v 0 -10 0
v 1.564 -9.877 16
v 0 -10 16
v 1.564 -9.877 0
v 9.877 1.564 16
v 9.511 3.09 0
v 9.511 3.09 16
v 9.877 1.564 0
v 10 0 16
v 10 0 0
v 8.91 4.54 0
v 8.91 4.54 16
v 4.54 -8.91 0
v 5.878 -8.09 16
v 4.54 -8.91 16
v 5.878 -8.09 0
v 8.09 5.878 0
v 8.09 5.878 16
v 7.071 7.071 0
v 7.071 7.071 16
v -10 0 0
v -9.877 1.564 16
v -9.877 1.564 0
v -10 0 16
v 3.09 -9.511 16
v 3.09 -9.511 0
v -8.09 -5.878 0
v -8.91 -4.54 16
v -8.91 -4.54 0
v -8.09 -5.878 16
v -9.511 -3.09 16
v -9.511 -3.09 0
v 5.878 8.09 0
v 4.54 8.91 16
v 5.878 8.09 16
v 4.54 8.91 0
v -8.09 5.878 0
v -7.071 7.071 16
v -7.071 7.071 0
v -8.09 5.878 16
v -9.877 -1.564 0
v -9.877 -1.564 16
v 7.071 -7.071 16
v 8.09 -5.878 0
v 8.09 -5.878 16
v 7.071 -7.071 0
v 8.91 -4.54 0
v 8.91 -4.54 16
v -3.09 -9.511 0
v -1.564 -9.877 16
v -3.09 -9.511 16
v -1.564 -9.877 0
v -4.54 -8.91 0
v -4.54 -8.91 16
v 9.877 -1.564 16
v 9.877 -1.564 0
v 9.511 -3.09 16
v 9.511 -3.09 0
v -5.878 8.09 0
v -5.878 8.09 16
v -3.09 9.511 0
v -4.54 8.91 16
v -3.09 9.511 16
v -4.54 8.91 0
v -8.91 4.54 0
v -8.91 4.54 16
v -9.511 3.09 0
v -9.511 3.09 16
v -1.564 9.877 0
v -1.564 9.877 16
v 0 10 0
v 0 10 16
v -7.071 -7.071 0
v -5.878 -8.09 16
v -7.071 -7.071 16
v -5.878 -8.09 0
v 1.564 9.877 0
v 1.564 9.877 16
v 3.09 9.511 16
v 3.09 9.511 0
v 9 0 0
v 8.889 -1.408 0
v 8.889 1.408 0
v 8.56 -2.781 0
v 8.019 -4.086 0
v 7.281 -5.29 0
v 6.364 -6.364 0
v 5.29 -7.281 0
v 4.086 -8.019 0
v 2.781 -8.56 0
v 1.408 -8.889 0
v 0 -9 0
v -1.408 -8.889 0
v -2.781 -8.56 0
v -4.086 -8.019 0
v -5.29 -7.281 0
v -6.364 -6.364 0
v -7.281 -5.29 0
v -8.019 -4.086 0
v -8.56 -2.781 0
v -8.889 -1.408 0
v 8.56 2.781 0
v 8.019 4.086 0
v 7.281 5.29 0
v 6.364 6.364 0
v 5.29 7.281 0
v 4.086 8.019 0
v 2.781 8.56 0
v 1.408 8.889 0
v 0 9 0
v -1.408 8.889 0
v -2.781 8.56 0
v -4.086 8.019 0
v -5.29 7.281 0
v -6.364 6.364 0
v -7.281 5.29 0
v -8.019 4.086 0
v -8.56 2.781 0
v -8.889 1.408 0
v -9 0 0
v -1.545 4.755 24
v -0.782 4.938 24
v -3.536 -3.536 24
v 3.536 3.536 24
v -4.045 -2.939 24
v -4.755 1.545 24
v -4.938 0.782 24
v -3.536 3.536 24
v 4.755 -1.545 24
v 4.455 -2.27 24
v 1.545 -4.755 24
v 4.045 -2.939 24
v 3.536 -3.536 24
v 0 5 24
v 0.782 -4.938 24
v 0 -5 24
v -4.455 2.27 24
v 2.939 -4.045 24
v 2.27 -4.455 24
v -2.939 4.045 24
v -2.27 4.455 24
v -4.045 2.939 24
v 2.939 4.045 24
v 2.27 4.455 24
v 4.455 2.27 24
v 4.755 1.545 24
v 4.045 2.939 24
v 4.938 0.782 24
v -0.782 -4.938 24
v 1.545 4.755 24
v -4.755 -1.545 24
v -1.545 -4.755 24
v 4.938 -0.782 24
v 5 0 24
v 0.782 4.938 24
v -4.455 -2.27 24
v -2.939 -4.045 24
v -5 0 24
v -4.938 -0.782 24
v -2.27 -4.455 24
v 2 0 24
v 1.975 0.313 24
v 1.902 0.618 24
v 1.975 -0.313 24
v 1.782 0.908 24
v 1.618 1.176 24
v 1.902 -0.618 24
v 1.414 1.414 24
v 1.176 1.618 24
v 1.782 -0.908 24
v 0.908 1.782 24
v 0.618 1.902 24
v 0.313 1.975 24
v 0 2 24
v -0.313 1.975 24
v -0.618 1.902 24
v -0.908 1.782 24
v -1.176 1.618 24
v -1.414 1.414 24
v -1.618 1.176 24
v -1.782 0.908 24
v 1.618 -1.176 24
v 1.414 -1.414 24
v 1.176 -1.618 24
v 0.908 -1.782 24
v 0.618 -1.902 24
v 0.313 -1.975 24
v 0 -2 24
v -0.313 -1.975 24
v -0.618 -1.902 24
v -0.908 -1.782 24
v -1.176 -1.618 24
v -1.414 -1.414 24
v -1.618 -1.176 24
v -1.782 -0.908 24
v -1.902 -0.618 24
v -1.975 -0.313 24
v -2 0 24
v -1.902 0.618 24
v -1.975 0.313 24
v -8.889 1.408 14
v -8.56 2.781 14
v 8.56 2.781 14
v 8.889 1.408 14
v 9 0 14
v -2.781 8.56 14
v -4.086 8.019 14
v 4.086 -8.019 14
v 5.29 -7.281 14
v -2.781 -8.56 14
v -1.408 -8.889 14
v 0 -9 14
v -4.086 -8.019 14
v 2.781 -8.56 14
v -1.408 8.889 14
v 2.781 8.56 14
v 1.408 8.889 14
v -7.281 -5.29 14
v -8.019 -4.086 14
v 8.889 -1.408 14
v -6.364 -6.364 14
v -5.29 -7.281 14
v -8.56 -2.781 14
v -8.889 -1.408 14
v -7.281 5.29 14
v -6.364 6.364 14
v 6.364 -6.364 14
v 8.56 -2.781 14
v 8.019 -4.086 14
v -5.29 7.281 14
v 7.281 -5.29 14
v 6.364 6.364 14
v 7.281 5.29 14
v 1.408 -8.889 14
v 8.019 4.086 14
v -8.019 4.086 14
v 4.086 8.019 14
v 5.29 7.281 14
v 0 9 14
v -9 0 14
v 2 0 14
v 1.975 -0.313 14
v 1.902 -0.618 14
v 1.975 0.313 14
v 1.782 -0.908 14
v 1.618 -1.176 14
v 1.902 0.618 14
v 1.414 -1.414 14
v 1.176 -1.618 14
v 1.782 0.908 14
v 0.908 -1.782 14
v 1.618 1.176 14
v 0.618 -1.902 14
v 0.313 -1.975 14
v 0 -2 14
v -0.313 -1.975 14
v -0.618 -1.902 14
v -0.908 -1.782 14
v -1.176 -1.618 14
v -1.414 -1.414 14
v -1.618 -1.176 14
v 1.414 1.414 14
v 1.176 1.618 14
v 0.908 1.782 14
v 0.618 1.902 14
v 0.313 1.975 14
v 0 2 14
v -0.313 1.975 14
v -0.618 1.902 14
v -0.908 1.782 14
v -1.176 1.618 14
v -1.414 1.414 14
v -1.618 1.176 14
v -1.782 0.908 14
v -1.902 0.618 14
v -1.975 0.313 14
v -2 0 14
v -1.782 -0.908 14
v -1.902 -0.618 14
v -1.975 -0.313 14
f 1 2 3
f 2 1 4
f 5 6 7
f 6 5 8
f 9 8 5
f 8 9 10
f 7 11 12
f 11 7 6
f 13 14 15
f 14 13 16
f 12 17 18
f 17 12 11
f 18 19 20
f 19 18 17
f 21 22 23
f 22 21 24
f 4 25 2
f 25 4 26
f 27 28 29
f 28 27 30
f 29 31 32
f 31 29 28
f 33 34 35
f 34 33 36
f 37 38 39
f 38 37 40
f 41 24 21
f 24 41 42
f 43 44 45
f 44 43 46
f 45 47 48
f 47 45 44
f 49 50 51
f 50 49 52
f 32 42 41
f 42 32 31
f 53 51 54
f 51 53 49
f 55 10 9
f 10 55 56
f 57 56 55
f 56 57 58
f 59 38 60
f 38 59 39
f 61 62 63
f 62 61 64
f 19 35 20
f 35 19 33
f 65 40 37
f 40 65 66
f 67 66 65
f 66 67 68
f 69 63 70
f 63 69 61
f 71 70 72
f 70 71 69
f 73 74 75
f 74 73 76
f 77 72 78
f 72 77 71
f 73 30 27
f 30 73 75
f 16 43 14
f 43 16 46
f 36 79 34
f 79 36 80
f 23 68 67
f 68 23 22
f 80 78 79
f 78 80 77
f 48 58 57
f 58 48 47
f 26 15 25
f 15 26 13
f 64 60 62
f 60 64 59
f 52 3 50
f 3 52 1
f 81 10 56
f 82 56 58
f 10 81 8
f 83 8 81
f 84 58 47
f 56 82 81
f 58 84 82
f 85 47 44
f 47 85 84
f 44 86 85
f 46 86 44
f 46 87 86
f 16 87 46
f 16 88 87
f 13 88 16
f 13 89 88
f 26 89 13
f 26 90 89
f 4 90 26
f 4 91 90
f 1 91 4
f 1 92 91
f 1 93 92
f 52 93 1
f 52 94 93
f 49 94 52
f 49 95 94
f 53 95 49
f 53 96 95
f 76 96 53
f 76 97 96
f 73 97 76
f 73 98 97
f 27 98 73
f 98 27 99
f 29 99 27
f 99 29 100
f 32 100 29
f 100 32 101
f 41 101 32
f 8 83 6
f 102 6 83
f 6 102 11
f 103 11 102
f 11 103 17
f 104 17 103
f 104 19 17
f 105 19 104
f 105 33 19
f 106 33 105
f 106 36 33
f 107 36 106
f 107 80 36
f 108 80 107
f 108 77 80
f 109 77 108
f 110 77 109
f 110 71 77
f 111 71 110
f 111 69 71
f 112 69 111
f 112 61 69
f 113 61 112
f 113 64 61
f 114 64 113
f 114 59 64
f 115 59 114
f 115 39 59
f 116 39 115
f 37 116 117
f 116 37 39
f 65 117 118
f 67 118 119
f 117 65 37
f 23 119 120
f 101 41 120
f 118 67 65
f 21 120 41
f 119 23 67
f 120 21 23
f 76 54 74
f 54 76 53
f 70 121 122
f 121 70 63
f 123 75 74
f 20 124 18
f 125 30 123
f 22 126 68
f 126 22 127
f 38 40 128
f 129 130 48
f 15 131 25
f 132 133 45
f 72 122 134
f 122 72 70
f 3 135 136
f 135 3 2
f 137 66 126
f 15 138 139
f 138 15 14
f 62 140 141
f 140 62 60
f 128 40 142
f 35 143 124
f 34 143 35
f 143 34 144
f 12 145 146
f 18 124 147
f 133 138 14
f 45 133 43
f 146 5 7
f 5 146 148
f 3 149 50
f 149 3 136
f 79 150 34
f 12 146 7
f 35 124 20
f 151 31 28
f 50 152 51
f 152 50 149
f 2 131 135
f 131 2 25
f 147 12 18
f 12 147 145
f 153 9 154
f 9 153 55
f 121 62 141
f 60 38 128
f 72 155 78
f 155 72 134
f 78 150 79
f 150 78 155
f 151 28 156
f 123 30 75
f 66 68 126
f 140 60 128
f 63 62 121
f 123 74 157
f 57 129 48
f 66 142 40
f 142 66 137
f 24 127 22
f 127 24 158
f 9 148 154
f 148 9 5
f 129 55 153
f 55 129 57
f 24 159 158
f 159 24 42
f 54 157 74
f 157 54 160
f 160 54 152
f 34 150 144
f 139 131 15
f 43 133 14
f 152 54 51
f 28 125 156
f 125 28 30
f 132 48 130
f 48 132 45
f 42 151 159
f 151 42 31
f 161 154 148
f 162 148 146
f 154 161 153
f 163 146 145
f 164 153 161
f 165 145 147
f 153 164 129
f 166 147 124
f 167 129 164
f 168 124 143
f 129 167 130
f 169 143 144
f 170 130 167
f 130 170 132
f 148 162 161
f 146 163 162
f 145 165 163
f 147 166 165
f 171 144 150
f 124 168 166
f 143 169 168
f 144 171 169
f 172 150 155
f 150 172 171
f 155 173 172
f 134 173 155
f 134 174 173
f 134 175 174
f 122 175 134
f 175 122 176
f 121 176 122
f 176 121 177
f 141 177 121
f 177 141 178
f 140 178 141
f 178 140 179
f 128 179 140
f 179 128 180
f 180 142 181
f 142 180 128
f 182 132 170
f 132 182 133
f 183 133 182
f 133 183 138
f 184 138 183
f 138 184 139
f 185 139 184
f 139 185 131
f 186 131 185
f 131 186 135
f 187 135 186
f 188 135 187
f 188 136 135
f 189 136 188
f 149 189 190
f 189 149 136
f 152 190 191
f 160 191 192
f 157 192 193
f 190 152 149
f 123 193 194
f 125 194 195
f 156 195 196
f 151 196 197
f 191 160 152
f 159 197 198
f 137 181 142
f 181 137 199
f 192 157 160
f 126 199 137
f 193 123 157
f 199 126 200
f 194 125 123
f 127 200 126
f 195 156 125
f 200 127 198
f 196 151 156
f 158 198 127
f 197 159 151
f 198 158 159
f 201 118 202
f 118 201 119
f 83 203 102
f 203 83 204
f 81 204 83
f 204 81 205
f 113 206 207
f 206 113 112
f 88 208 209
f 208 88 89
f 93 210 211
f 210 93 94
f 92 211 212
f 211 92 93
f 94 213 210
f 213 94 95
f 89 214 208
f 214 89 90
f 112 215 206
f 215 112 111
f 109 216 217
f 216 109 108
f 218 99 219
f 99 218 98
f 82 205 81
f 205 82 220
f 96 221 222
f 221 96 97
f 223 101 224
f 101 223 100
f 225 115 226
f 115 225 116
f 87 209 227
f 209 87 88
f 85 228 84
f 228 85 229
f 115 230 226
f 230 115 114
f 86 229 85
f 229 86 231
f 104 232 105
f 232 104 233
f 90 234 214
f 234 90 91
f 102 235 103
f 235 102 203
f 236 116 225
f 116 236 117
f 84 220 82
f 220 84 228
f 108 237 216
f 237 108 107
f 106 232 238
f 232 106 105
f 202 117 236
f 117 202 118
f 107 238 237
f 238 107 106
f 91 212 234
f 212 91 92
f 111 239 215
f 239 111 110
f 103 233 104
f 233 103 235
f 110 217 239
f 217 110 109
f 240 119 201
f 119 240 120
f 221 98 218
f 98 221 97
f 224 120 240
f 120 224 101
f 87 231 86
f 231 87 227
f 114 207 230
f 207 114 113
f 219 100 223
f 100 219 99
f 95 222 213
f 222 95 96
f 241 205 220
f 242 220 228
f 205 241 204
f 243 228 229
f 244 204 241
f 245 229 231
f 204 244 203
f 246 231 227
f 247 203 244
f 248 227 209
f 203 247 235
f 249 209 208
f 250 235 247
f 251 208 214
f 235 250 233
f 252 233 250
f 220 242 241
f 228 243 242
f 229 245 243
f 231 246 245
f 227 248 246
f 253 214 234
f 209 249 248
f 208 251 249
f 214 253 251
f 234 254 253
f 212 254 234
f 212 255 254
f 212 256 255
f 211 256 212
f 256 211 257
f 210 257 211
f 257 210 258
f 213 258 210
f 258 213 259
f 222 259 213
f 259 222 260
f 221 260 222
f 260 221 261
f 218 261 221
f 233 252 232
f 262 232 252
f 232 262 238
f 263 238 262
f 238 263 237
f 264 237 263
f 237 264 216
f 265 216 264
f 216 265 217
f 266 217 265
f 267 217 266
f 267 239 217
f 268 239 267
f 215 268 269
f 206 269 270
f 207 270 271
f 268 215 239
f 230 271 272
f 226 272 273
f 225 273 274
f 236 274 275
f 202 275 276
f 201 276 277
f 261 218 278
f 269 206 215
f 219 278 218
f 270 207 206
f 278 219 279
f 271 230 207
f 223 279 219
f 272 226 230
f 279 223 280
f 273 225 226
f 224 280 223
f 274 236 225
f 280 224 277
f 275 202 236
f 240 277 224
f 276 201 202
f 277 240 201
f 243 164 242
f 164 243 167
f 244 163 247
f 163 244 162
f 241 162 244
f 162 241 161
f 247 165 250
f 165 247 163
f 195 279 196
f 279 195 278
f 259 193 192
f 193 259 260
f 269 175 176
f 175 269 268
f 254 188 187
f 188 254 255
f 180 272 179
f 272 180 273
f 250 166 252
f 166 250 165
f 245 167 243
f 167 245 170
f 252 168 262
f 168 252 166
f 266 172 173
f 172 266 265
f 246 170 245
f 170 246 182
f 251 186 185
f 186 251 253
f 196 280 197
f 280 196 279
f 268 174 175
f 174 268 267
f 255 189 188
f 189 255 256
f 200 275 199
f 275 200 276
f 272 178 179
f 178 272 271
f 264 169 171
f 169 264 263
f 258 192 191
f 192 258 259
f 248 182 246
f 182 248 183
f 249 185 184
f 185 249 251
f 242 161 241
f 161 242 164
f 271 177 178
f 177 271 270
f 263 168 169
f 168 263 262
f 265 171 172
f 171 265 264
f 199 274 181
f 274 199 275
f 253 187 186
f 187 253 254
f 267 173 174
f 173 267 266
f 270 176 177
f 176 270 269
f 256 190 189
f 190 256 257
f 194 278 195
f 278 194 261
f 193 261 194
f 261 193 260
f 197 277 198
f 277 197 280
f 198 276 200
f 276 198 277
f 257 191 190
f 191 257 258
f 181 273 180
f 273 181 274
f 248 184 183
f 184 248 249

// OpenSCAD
$fn=40;
height=16;
width=20;

difference(){
    union(){
        cylinder(h=height, d=width); // shell
        translate([0,0,height]) cylinder(h=8, d1=width, d2=width/2); // hump
    };
    translate([0,0,-1]) cylinder(h=height-1, d=width-2); // shell hollowness
    cylinder(h=24, d=4); // inner cutout
};
